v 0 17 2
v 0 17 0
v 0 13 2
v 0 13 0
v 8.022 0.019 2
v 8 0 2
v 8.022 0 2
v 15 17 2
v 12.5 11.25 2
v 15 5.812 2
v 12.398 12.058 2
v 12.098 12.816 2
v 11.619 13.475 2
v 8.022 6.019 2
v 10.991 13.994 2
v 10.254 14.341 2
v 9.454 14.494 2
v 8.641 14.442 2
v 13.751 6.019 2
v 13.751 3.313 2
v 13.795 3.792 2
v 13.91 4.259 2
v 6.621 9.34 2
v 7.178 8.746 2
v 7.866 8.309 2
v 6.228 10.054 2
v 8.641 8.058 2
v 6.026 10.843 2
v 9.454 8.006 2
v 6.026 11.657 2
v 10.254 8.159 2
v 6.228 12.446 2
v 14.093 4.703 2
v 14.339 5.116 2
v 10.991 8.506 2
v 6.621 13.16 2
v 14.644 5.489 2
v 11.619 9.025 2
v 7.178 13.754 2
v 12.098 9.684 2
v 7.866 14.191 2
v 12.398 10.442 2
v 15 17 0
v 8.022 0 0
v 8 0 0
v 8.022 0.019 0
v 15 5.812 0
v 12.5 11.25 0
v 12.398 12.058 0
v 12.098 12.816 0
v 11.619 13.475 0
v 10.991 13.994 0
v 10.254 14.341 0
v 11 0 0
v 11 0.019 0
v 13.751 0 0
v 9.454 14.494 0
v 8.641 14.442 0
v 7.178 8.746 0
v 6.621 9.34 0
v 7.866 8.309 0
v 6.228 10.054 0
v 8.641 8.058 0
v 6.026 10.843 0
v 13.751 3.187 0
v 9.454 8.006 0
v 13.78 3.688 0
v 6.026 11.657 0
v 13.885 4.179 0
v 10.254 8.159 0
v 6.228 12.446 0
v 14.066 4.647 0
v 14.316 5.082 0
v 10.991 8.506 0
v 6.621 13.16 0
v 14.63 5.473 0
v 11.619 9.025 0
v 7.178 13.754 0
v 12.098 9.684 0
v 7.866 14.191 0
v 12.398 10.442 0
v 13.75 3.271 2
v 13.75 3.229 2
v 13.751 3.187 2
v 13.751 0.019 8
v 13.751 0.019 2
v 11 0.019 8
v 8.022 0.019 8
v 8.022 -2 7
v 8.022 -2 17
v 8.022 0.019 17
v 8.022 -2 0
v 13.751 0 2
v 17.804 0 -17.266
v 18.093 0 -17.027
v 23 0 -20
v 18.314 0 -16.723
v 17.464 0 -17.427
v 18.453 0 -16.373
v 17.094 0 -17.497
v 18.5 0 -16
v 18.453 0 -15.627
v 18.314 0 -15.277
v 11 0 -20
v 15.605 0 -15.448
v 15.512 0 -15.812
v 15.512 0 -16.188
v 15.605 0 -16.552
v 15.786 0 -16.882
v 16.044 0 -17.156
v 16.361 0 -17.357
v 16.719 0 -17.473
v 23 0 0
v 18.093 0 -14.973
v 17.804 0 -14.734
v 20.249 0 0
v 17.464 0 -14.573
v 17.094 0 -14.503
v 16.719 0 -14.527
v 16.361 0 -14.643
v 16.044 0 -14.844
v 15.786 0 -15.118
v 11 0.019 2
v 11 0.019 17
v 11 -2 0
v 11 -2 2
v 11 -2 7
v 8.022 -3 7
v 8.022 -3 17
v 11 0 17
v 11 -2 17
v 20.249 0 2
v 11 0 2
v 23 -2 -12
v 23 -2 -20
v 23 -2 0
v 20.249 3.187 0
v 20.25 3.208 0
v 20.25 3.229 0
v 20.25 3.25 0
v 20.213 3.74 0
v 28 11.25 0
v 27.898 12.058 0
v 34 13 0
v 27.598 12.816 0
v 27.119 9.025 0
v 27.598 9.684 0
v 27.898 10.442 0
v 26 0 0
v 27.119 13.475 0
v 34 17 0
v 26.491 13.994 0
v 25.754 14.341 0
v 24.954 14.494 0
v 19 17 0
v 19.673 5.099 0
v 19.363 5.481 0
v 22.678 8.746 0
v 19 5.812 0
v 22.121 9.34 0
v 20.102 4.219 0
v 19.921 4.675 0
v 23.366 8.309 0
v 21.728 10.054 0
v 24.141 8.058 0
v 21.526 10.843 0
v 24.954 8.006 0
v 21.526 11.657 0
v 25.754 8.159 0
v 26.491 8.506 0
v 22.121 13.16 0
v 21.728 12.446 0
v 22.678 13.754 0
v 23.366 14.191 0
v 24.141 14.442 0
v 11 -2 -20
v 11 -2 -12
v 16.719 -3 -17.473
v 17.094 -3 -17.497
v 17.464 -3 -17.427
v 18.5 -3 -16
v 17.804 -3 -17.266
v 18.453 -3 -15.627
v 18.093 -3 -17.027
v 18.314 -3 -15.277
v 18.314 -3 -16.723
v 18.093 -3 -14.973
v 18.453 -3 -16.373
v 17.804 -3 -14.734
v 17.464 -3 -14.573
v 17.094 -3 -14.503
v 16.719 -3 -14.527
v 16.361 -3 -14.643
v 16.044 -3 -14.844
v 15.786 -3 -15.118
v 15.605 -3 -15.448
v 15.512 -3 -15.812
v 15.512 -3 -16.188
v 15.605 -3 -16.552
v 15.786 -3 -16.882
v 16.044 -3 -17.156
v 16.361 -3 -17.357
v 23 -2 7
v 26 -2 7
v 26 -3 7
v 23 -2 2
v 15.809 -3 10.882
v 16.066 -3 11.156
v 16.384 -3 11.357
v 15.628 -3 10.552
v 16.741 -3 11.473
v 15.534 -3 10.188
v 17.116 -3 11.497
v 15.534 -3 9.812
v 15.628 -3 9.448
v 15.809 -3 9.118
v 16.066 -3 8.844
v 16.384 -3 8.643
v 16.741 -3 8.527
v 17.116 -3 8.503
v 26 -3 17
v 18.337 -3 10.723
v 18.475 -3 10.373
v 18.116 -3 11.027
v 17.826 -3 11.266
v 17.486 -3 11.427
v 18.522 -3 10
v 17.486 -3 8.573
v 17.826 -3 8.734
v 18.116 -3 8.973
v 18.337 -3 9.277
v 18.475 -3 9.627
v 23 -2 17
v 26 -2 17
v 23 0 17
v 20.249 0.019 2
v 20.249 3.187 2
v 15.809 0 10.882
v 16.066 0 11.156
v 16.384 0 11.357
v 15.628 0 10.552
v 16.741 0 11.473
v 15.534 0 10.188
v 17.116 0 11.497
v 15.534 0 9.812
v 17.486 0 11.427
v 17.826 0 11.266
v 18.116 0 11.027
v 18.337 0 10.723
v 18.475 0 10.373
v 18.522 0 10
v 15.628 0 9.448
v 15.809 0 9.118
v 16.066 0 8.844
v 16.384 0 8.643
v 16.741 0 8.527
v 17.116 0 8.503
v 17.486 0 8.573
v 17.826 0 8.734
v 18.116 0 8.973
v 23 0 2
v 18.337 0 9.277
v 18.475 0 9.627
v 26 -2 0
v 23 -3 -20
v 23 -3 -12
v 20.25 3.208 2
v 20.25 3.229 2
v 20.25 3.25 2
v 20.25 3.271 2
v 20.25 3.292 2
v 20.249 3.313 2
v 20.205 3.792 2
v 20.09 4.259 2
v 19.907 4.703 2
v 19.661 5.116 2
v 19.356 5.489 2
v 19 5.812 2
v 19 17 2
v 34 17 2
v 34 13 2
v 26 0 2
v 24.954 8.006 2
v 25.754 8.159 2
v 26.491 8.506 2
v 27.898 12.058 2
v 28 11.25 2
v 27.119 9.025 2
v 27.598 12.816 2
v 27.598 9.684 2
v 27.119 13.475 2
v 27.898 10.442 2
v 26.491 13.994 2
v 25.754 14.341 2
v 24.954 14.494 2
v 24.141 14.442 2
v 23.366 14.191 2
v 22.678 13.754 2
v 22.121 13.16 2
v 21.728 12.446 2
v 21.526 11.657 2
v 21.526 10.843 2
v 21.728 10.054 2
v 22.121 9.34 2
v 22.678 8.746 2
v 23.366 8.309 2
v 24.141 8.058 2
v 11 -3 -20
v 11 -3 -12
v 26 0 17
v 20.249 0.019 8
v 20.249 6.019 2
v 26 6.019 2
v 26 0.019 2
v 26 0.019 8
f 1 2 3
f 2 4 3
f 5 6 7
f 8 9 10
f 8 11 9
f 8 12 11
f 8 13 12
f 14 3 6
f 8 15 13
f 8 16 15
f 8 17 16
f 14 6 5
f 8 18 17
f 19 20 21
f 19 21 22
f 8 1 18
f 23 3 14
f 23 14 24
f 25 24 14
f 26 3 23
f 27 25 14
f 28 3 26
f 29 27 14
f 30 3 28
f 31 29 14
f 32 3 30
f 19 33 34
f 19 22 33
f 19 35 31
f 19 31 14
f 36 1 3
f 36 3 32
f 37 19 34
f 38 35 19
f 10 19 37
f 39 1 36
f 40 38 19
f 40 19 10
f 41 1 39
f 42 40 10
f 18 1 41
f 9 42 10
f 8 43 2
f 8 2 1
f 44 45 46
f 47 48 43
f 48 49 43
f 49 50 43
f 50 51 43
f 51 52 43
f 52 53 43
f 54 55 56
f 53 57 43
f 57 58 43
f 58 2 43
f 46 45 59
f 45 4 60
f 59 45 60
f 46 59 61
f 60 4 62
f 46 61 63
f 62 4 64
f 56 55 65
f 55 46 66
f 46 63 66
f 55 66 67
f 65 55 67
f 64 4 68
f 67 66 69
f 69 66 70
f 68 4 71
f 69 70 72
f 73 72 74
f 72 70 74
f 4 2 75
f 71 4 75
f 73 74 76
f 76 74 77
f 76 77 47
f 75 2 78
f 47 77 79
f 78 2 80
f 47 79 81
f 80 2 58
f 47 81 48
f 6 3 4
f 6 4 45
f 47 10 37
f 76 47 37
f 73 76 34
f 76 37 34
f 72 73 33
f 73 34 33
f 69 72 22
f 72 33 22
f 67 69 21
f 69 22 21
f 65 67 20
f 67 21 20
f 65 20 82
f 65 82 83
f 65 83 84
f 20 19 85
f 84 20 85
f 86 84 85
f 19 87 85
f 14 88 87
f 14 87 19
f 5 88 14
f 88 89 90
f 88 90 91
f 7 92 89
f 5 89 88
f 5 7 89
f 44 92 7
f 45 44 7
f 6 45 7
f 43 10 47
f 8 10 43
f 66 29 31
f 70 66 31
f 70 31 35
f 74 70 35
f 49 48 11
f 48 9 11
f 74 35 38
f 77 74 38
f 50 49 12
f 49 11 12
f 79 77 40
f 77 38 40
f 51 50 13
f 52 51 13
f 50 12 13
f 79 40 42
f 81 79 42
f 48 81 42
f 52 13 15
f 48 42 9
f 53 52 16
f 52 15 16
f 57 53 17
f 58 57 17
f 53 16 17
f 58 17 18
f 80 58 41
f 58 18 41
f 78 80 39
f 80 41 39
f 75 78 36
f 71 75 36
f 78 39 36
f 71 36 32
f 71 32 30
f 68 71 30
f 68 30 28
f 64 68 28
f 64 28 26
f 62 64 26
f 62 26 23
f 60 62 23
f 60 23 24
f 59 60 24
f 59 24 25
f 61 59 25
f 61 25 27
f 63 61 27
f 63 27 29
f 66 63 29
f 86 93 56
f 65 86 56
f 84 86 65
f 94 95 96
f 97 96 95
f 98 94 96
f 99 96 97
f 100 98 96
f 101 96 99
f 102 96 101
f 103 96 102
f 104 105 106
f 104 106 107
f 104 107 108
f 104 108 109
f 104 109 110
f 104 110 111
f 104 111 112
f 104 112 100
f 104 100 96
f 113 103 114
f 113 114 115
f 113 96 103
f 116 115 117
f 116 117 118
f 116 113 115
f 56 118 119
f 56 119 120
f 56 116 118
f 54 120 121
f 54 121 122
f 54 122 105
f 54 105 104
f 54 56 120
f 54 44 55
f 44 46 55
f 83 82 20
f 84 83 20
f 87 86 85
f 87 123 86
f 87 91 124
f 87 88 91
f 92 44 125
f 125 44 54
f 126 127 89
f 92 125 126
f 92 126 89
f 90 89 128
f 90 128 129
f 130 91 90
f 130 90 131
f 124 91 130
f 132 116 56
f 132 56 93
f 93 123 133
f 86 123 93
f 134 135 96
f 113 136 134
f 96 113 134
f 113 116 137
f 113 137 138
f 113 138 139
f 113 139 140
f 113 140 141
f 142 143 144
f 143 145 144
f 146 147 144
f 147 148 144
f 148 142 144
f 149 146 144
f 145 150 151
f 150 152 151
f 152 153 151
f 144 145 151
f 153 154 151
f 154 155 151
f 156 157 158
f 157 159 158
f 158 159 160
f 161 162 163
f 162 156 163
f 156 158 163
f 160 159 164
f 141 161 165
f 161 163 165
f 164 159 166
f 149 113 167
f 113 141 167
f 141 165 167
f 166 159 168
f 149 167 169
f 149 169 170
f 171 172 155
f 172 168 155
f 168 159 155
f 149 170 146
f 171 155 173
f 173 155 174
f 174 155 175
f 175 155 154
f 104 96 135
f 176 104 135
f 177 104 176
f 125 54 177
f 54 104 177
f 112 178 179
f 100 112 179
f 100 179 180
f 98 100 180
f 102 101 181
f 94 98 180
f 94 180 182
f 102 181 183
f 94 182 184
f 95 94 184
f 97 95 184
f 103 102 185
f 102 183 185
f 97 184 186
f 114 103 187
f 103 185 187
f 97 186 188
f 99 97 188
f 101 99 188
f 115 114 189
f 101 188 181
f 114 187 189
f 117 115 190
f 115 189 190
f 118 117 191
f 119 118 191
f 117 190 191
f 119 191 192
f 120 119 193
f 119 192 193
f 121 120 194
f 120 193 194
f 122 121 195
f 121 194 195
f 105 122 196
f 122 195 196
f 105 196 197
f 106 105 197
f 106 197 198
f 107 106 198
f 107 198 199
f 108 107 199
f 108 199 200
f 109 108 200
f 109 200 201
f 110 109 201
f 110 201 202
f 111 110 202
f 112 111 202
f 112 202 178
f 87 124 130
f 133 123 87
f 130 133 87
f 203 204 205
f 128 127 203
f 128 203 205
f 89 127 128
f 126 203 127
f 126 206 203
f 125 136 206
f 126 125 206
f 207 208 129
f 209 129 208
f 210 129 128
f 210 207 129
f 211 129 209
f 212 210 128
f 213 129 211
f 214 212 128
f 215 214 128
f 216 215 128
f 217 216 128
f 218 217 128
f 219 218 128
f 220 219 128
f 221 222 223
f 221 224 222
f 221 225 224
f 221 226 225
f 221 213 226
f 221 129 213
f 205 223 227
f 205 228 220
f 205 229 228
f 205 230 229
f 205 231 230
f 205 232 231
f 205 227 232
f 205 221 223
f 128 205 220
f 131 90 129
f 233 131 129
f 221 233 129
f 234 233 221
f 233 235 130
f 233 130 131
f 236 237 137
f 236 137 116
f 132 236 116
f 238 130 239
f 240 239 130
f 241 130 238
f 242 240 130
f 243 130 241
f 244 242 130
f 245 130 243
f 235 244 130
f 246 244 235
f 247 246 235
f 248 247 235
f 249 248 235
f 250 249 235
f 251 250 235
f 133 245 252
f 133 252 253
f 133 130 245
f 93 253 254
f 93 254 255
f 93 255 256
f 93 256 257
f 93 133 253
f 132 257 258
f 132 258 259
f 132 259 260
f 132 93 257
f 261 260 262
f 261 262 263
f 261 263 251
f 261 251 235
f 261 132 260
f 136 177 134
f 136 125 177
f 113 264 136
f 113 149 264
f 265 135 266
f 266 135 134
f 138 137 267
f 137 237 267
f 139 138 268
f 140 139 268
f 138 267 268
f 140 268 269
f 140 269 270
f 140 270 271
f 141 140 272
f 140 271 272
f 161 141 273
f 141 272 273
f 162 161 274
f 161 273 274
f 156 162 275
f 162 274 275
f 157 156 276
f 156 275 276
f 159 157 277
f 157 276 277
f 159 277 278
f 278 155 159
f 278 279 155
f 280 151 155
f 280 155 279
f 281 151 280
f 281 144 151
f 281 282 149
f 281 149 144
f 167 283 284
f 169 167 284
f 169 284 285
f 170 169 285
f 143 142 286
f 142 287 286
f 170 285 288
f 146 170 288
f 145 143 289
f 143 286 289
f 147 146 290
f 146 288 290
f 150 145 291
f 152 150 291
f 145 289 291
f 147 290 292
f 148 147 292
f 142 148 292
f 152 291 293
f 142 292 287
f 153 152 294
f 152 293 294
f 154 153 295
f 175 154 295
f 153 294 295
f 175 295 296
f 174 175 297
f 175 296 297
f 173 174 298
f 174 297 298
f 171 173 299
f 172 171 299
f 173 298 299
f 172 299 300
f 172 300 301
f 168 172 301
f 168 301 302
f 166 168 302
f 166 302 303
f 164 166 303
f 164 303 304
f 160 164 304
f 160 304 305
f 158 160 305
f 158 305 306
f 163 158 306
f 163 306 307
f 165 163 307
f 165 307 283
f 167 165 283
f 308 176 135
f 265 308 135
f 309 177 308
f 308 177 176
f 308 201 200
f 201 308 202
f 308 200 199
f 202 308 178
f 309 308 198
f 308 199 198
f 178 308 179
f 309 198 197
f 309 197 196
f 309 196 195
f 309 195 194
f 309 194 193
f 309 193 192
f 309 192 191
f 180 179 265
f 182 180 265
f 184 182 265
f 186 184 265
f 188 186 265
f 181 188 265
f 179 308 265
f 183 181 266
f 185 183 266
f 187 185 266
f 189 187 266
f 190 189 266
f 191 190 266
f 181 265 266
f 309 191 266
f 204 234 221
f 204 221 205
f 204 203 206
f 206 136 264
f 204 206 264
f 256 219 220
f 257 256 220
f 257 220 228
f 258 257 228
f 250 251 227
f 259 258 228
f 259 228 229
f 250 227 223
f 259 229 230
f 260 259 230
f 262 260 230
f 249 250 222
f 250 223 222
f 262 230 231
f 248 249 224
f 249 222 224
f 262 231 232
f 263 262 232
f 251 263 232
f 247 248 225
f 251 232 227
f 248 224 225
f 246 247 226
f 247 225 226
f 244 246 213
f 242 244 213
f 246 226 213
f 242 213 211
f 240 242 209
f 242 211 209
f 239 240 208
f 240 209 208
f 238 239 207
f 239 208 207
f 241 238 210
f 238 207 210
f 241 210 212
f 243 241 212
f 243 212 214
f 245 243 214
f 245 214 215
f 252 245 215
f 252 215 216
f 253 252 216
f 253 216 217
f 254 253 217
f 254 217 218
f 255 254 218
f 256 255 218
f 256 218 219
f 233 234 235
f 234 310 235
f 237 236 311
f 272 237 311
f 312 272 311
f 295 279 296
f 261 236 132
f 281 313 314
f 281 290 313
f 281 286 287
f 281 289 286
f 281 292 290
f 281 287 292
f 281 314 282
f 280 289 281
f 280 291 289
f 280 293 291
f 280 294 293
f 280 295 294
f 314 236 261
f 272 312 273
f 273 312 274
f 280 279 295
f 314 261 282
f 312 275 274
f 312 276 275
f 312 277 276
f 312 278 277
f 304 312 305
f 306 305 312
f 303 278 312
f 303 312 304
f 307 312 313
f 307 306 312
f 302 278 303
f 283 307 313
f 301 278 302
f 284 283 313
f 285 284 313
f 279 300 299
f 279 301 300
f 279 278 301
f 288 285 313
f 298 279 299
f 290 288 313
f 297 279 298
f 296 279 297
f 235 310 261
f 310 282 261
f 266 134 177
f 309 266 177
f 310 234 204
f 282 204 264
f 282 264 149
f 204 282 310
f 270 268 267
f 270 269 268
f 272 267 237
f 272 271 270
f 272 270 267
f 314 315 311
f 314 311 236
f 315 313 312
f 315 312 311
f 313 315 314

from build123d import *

# Parameters (mm, degrees)
BOX_W           = 34
BOX_H           = 17
BOX_DEPTH       = 2
SKETCH_R        = 3.25
POCKET_DEPTH    = 2
SKETCH001_W     = 6.4987877113
SKETCH001_H     = 3.187234
POCKET001_DEPTH = 2
POCKET002_DEPTH = 2
SKETCH003_W     = 12
SKETCH003_H     = 2
PAD_DEPTH       = 2
SKETCH004_W     = 12
SKETCH004_H     = 2
PAD001_DEPTH    = 15
SKETCH005_W     = 12
SKETCH005_H     = 2
PAD002_DEPTH    = 20
SKETCH006_W     = 2.977736
SKETCH006_H     = 2.018581
SKETCH006_W_2   = 3
SKETCH006_H_2   = 2
PAD003_DEPTH    = 17
SKETCH007_W     = 17.977736
SKETCH007_H     = 10
SKETCH007_W_2   = 12
SKETCH007_H_2   = 8
PAD004_DEPTH    = 1
SKETCH008_R     = 1.5
POCKET003_DEPTH = 3
SKETCH009_W     = 4
SKETCH009_H     = 13.706681
POCKET004_DEPTH = 2
PAD005_DEPTH    = 5.7283421443
PAD006_DEPTH    = 5.7506061443


with BuildPart() as part:
    # Box → Box (new body)
    with BuildSketch(Plane.XY):
        with Locations((17, 8.5)):
            Rectangle(BOX_W, BOX_H)
    extrude(amount=BOX_DEPTH)

    # Sketch → Pocket (cut)
    with BuildSketch(Plane.XY.offset(2)):
        with Locations((9.25, 11.25)):
            Circle(SKETCH_R)
        with Locations((24.75, 11.25)):
            Circle(SKETCH_R)
        with Locations((17, 3.25)):
            Circle(SKETCH_R)
    extrude(amount=-POCKET_DEPTH, mode=Mode.SUBTRACT)

    # Sketch001 → Pocket001 (cut)
    with BuildSketch(Plane.XY.offset(2)):
        with Locations((17, 1.593617)):
            Rectangle(SKETCH001_W, SKETCH001_H)
    extrude(amount=-POCKET001_DEPTH, mode=Mode.SUBTRACT)

    # Sketch002 → Pocket002 (cut)
    with BuildSketch(Plane.XY.offset(2)):
        Polygon((0, 0), (8, 0), (0, 13), align=None)
        Polygon((34, 0), (26, 0), (34, 13), align=None)
    extrude(amount=-POCKET002_DEPTH, mode=Mode.SUBTRACT)

    # Sketch003 → Pad (new body)
    with BuildSketch(Plane.XZ):
        with Locations((17, 1)):
            Rectangle(SKETCH003_W, SKETCH003_H)
    extrude(amount=PAD_DEPTH)

    # Sketch004 → Pad001 (new body)
    with BuildSketch(Plane.XY.offset(2)):
        with Locations((17, -1)):
            Rectangle(SKETCH004_W, SKETCH004_H)
    extrude(amount=PAD001_DEPTH)

    # Sketch005 → Pad002 (new body)
    with BuildSketch(Plane(origin=(0, 0, 0), x_dir=(1, 0, 0), z_dir=(0, 0, -1))):
        with Locations((17, 1)):
            Rectangle(SKETCH005_W, SKETCH005_H)
    extrude(amount=PAD002_DEPTH)

    # Sketch006 → Pad003 (new body)
    with BuildSketch(Plane(origin=(0, 0, 0), x_dir=(1, 0, 0), z_dir=(0, 0, -1))):
        with Locations((9.511132, 0.9907095)):
            Rectangle(SKETCH006_W, SKETCH006_H)
        with Locations((24.5, 1)):
            Rectangle(SKETCH006_W_2, SKETCH006_H_2)
    extrude(amount=-PAD003_DEPTH)

    # Sketch007 → Pad004 (new body)
    with BuildSketch(Plane.XZ.offset(2)):
        with Locations((17.011132, 12)):
            Rectangle(SKETCH007_W, SKETCH007_H)
        with Locations((17, -16)):
            Rectangle(SKETCH007_W_2, SKETCH007_H_2)
    extrude(amount=PAD004_DEPTH)

    # Sketch008 → Pocket003 (cut)
    with BuildSketch(Plane.XZ.offset(3)):
        with Locations((17.022264, 10)):
            Circle(SKETCH008_R)
        with Locations((17, -16)):
            Circle(SKETCH008_R)
    extrude(amount=-POCKET003_DEPTH, mode=Mode.SUBTRACT)

    # Sketch009 → Pocket004 (cut)
    with BuildSketch(Plane.XY.offset(2)):
        with Locations((17, 10.5939175)):
            Rectangle(SKETCH009_W, SKETCH009_H)
    extrude(amount=-POCKET004_DEPTH, mode=Mode.SUBTRACT)

    # Sketch010 → Pad005 (new body)
    with BuildSketch(Plane(origin=(8.022264, 0, 0), x_dir=(0, -1, 0), z_dir=(-1, 0, 0))):
        Polygon((-0.018581, 2), (-6.018581, 2), (-0.018581, 8), align=None)
    extrude(amount=-PAD005_DEPTH)

    # Sketch011 → Pad006 (new body)
    with BuildSketch(Plane.YZ.offset(26)):
        Polygon((0.018581, 8), (0.018581, 2), (6.018581, 2), align=None)
    extrude(amount=-PAD006_DEPTH)


solid = part.part
